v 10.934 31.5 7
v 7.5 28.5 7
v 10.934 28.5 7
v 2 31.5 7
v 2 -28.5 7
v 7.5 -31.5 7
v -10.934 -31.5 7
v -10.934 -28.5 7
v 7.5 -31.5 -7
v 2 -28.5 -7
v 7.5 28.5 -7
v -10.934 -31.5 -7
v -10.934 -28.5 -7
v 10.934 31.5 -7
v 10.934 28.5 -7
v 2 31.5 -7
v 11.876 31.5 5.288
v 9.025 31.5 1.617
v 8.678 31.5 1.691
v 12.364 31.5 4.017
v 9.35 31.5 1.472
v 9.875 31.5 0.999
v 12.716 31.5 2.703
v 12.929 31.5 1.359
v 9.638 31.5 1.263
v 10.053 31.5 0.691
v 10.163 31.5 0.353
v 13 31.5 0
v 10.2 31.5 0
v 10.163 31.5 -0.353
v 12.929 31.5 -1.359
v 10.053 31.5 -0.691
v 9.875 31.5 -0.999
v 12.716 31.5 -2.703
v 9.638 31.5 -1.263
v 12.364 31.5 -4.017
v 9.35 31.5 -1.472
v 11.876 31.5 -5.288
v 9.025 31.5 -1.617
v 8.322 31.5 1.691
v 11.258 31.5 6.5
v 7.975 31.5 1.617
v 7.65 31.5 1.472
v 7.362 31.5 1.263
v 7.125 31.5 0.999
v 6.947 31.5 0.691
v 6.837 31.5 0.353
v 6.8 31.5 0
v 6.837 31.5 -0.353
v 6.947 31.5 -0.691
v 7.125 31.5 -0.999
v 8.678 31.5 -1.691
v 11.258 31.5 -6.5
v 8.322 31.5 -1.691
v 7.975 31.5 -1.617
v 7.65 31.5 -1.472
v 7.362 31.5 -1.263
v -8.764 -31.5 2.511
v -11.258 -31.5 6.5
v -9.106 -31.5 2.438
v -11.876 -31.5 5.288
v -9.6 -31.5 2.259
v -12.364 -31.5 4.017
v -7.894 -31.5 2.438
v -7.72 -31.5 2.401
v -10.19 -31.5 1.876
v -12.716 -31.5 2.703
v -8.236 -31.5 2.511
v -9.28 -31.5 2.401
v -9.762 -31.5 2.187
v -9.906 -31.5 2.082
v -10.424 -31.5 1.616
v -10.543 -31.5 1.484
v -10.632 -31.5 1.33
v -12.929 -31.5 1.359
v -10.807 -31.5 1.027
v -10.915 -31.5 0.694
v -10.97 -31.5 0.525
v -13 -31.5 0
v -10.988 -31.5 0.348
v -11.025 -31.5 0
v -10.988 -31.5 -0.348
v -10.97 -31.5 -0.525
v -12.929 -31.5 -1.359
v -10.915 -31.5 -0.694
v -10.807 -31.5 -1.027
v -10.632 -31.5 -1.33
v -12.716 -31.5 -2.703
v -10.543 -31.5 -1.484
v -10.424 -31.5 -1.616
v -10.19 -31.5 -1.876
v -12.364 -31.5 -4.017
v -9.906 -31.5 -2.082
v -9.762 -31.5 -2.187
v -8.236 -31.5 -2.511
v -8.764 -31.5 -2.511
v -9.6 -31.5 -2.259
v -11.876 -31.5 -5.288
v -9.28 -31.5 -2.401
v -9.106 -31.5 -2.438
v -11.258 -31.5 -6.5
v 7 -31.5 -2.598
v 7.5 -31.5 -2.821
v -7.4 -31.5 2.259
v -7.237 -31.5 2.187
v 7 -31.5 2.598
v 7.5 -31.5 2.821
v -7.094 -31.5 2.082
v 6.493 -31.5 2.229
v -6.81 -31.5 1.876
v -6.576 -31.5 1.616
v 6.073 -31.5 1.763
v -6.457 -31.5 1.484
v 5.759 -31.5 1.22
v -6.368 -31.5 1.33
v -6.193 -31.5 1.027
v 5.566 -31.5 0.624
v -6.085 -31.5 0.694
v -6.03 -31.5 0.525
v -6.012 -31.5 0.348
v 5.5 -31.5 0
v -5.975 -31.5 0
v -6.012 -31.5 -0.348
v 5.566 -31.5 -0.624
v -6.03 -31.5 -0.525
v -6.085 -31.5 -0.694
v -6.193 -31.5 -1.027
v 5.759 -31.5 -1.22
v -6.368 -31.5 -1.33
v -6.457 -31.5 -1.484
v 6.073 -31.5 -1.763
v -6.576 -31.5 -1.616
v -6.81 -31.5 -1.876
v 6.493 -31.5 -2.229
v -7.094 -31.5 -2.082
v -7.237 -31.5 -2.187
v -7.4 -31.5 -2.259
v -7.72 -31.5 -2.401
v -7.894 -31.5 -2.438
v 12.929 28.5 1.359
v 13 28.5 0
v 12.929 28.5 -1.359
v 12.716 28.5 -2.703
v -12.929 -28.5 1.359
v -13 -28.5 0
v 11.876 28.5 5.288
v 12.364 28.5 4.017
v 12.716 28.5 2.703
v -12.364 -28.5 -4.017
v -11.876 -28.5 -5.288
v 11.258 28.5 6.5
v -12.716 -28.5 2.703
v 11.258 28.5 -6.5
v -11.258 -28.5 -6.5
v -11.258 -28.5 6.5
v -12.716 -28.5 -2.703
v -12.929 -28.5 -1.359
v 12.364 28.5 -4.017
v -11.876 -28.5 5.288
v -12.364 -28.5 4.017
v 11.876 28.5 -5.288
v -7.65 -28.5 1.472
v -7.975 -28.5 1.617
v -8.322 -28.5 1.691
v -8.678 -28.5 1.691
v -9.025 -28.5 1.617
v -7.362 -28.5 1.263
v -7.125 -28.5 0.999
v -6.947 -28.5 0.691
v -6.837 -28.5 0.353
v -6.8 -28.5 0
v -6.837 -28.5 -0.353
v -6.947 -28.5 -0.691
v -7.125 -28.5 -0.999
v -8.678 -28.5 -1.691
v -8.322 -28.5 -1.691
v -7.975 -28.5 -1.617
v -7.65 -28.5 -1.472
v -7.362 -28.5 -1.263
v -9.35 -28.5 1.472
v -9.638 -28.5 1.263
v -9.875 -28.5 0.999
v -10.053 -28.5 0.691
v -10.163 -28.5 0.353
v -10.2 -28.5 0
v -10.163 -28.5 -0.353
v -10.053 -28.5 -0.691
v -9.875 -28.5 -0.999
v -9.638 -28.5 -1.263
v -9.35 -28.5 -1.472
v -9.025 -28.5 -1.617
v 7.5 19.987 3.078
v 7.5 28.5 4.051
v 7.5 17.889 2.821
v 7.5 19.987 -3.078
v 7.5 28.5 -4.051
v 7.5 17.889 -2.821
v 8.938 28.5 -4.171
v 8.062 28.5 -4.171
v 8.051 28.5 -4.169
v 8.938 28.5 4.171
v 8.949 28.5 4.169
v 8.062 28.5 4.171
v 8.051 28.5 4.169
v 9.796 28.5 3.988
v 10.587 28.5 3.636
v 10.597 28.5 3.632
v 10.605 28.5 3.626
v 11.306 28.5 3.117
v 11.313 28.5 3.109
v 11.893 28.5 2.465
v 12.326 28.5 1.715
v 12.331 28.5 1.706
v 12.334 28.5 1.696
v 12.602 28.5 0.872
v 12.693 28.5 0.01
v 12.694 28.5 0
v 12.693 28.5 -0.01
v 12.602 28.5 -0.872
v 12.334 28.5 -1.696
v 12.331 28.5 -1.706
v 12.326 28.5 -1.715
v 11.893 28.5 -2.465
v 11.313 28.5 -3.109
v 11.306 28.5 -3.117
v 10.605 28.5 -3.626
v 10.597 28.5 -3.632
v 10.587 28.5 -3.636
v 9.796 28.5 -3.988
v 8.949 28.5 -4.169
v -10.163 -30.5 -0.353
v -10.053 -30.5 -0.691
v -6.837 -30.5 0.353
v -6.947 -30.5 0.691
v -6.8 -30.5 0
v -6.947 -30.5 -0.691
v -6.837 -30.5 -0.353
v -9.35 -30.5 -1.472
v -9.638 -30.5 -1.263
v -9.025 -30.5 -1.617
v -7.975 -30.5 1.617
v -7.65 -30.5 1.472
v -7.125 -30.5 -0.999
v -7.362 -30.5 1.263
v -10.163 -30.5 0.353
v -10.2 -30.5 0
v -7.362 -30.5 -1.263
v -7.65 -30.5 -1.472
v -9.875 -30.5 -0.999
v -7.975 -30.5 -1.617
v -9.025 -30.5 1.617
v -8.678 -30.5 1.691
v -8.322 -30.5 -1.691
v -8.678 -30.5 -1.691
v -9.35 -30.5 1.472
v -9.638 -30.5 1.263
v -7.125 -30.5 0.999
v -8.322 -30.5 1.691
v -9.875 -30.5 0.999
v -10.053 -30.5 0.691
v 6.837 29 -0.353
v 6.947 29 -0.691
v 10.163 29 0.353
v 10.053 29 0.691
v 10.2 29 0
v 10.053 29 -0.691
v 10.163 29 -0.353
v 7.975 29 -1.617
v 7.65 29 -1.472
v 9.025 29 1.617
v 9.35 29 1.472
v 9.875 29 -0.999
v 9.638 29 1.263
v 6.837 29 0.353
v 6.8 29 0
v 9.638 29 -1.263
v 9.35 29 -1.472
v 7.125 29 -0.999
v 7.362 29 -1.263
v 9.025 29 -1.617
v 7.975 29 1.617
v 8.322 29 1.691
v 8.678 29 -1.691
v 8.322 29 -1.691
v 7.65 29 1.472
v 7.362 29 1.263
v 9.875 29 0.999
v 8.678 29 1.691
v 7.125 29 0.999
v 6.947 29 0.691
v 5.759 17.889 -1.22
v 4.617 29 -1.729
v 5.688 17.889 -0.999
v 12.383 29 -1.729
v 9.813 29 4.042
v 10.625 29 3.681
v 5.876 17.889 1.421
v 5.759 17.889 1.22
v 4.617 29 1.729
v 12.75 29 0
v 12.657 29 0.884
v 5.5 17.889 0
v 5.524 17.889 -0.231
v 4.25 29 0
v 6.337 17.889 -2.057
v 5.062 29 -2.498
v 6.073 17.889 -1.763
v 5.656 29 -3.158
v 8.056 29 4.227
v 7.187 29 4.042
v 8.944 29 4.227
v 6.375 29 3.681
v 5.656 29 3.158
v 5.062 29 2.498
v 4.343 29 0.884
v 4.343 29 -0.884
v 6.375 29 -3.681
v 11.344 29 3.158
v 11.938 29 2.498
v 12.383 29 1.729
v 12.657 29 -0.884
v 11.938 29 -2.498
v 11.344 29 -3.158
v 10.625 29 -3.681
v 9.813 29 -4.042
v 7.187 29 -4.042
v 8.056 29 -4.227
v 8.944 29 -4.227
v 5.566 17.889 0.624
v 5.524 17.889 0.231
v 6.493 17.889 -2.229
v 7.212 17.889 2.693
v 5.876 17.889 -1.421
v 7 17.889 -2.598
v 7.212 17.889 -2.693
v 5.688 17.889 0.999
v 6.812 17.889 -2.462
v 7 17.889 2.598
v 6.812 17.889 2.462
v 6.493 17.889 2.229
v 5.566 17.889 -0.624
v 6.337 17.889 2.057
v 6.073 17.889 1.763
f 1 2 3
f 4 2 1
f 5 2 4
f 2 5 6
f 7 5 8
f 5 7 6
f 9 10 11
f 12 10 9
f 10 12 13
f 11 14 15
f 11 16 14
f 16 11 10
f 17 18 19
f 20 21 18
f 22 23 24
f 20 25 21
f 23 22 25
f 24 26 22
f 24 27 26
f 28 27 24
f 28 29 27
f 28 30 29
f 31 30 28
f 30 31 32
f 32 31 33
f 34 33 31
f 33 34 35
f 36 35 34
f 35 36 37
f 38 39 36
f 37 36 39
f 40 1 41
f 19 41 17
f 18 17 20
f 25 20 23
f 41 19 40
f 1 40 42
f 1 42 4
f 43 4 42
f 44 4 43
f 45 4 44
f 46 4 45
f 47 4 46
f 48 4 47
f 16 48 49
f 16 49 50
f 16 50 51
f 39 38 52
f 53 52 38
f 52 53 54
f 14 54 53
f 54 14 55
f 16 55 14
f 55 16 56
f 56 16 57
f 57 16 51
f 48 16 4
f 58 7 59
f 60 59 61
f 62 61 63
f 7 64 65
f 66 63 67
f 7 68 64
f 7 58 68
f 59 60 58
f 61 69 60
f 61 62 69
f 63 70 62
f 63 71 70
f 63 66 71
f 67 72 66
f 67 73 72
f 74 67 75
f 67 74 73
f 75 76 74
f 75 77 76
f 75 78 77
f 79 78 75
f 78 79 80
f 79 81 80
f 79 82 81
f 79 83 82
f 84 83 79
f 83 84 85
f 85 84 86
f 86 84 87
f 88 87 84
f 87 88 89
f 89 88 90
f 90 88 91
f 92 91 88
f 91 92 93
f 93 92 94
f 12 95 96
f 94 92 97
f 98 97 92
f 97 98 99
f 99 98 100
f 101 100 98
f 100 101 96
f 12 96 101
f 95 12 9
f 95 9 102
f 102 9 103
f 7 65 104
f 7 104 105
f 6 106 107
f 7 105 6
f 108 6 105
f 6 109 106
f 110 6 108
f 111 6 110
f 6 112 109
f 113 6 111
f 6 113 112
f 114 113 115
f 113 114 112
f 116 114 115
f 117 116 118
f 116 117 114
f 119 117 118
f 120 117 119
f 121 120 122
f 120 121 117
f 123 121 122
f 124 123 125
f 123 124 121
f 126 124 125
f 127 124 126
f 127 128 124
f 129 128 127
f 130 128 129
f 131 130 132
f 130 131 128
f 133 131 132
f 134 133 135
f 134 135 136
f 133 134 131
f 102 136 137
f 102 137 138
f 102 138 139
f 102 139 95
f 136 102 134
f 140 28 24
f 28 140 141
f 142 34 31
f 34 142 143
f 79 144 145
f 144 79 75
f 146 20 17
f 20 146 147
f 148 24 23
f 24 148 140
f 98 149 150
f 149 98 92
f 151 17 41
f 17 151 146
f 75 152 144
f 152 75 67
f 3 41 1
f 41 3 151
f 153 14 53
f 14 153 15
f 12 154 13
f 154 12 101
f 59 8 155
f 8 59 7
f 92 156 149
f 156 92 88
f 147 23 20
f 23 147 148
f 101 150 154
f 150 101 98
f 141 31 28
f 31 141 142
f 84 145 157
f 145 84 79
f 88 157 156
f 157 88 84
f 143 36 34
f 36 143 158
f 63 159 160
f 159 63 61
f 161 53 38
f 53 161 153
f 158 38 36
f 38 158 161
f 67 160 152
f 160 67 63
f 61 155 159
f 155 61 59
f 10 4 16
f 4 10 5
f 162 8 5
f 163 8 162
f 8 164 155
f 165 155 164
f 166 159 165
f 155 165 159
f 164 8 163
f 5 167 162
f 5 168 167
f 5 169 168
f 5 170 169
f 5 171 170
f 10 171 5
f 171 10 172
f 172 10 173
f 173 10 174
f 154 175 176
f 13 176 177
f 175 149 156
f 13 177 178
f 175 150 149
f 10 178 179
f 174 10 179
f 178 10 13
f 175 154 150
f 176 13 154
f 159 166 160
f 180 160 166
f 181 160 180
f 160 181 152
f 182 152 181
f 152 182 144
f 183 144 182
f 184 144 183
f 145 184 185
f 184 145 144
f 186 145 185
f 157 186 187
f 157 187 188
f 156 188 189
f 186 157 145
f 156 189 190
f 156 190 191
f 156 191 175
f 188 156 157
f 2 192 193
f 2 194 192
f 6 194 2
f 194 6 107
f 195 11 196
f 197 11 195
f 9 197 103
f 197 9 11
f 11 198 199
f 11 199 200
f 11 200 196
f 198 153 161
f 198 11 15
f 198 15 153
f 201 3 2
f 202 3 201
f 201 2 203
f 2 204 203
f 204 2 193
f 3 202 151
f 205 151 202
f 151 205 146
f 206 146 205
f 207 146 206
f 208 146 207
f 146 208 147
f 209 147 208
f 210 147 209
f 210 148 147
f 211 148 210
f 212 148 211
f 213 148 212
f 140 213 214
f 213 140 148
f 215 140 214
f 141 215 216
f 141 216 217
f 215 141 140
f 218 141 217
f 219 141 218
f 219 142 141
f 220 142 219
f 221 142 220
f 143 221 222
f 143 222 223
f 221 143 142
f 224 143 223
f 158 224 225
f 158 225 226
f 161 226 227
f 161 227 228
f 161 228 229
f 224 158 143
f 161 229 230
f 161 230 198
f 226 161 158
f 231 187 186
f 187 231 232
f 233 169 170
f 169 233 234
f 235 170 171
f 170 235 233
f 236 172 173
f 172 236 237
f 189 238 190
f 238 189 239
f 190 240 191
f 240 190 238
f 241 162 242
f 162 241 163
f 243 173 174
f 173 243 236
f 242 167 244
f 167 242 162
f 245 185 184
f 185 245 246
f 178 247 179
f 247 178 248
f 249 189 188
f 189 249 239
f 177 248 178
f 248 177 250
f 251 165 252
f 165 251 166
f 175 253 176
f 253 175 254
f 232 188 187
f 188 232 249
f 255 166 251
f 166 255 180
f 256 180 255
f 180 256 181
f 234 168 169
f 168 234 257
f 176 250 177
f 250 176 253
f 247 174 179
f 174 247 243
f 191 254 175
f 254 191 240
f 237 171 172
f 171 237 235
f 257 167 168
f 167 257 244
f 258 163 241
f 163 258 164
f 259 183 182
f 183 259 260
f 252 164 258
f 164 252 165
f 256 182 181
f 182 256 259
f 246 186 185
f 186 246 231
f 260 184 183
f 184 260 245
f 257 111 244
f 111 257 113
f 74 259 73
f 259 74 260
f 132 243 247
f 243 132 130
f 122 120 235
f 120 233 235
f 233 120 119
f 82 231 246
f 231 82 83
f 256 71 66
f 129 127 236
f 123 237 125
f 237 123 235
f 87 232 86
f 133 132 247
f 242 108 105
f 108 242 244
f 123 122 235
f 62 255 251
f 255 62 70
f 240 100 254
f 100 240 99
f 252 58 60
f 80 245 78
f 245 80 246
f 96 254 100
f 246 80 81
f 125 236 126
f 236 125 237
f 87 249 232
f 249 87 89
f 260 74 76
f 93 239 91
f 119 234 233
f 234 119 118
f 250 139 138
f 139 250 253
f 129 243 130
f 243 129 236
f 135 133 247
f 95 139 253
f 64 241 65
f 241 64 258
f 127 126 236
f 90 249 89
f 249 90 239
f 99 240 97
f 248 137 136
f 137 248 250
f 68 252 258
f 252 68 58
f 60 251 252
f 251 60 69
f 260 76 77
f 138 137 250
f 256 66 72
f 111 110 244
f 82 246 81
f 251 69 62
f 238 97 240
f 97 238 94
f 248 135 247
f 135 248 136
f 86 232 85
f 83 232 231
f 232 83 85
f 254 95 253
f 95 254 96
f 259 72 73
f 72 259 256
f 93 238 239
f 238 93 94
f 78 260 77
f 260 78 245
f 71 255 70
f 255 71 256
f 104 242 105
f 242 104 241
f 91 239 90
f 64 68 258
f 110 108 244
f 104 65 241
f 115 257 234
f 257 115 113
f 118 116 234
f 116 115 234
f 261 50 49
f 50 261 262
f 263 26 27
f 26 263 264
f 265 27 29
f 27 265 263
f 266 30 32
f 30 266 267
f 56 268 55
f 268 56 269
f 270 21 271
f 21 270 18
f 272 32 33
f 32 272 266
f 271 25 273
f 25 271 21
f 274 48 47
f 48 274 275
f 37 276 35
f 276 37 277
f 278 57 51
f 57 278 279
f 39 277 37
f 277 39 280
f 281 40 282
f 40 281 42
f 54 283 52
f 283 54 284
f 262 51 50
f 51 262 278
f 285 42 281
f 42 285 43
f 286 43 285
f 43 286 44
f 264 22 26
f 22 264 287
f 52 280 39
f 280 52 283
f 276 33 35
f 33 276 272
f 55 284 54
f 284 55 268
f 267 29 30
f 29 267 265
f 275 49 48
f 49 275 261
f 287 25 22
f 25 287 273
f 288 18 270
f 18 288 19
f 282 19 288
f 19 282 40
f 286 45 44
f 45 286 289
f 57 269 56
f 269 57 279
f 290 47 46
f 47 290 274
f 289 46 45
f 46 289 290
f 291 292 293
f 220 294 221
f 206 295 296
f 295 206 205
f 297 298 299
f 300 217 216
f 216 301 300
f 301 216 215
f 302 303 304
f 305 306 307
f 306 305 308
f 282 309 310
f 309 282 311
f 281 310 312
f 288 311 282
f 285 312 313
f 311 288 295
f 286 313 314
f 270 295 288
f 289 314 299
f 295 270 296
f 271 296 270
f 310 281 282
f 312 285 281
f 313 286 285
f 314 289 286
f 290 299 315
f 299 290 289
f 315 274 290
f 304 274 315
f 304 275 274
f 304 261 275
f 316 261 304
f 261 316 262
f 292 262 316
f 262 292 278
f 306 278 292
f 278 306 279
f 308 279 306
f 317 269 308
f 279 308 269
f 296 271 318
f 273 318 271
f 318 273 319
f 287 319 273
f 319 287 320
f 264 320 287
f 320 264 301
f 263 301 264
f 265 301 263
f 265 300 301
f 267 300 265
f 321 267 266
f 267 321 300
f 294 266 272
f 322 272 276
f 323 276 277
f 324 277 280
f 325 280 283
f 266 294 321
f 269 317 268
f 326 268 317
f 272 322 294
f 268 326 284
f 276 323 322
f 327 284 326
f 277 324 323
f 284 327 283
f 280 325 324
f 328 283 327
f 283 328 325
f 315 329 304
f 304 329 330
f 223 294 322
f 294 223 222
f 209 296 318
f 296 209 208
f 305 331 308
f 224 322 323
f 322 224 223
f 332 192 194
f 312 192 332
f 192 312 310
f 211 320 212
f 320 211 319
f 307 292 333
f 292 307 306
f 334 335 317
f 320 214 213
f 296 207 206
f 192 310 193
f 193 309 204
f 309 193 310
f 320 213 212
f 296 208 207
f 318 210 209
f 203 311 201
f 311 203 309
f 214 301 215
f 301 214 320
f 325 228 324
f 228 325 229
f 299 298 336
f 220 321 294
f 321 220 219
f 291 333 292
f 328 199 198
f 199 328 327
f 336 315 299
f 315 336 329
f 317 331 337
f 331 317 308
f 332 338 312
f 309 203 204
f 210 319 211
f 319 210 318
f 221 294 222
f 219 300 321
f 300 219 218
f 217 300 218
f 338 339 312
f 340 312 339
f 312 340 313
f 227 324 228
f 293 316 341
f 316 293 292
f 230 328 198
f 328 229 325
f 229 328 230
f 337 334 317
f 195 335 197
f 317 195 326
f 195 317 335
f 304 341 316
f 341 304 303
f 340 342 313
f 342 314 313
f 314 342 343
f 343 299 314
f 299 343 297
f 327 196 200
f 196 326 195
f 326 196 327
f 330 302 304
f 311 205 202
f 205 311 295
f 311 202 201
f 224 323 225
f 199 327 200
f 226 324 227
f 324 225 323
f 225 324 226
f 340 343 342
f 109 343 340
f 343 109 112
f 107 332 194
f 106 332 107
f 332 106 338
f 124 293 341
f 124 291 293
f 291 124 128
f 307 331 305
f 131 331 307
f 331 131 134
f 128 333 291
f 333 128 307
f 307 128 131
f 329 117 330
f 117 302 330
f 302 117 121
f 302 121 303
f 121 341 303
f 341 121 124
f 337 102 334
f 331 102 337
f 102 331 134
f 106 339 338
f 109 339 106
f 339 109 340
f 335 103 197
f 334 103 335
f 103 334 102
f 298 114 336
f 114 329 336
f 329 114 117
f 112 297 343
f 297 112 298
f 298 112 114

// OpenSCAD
// file: ../Dollo/NEW_long_ties/globals.scad
/*
Most things in this file is represented as one millimeter, so keep that in mind while changing things.
Some of the setting are not mm but at variables that you can set, such as 2*x=2x and you are setting what x is.
I will try to specify when things are variables and not exact measurements.
*/

// printer slop
slop = 0.15;

obj_leg = 30;
leg_length = 5.5;
small_number = 0.001;
metal_core_rode_global = 5;


///////////////// number of holes /////////////////////
z_hole_number = 8;
other_holes = 8;

///////////////// Pins /////////////////////

//pins that poke out
ball_size = 10;
pin_height = 20;
pin_diameter = 6;


//holes
hole_ball_size = ball_size;
hole_pin_height = pin_height;
hole_pin_diameter = pin_diameter;

///////////////// Z THINGS /////////////////////

berring_slot_width = 7.5;
berring_slot_depth = 6.5;
metal_core_rode = 5;

///////////////// X THINGS /////////////////////

//male dove tails
male_dove_max_width=8;
male_dove_min_width=5;
male_dove_depth=5;
male_dove_height=obj_leg/2;

function scaled_male_dove_max_width() = male_dove_max_width - slop;
function scaled_male_dove_min_width() = male_dove_min_width - slop;
function scaled_male_dove_depth() = male_dove_depth - slop;

//female dove tails, this is found on the y mounts
girl_max_width=11;
girl_min_width=5;
girl_depth=5;
girl_height=obj_leg;


///////////////// Y THINGS /////////////////////
/*
The Y is so normal that all of those global variables at the top should change all of the setting in it, this section is set her incase there are variables set in the future development of this project.
*/

// stepper
motor_side_length = 43.2;
motor_bolt_hole_distance = 31;
motor_center_hole = 23;
motor_shaft_dia = 5;
motor_shaft_hole_dia = 5+2*slop;

// bolts etc.
bolt_hole_dia = 3+2*slop;
bolt_head_hole_dia = 5.8;

m4_bolt_hole_dia = 4+2*slop;
m4_bolt_head_hole_dia = 6.8+2*slop;


m3_nut_side = 5.65;
m3_nut_height = 2.3;
m4_nut_side = 6.85;
m4_nut_height = 3.1;

// threaded rod
lifter_rod_diam = 9.86;
hole_threaded_rod = lifter_rod_diam+2*slop;

// for the extensions
metal_rod_size = 9;
// file: ../Watercooling/common.scad
use <../Dollo/NEW_long_ties/include.scad>;
use <../PCParts/common.scad>;

tube1_outer_dia = 12.15; // copper
tube1_inner_dia = 10;

tube2_outer_dia = 10;
tube2_inner_dia = 8.5;

fitting_thread_dia = 13;

passthrough_thread_dia = 16;

wire_pass_thread_dia = 12;

// threads
g3_8_d = 16.6;
g1_4_d = 13.3;
g1_2_d = 20.955;

//mock_pump_Eheim_1000();
//mock_pump_Eheim_1000_new();
//mock_pump_Eheim_1250_790();
//mock_radiator_360();
//mock_radiator_420();

module mock_pump_Eheim_1000() {
    pump_width = 45.5;
    pump_height = 63.5;
    pump_depth = 63;

    module _pump_foot() {
        hull() {
            cylinder(d=20, h=0.1);

            translate([0, 0, 5.9])
            cylinder(d=11, h=0.1);
        }
    }

    difference() {
        translate([0, 0, 6])
        cube([
            pump_width, pump_depth,
            pump_height
        ]);

        translate([-1, 63, 45 + 6])
        rotate([30, 0, 0])
        cube([
            50, pump_depth - 23,
            pump_height - 23.5
        ]);
    }

    translate([
        pump_width/2, 41.6 + 13.1/2,
        pump_height - (20 - 14.3) + 6
    ])
    cylinder(d=13.1, h=20, $fn=30);

    translate([6.7, 15.4, 0])
    _pump_foot();

    translate([
        pump_width - 6.7, 15.4, 0
    ])
    _pump_foot();

    translate([6.7, 48.3, 0])
    _pump_foot();

    translate([
        pump_width - 6.7, 48.3, 0
    ])
    _pump_foot();
}

module mock_pump_Eheim_1000_new() {

    pump_width = 45.7;
    pump_height = 68.5;
    pump_depth = 75;

    module _pump_foot() {
        cylinder(d1=28, d2=11, h=7, $fn=40);

    }

    difference() {
        translate([0, 0, pump_height/2 + 12])
        cube([
            pump_width, pump_depth,
            pump_height
        ], center=true);

        translate([
            0, -pump_depth/2 + 63 - 12.5/2,
            pump_height + 12
        ])
        cylinder(d=22, h=12, center=true, $fn=30);
    }

    // outlet
    translate([
        0, -pump_depth/2 + 63 - 12.5/2,
        pump_height + 12
    ])
    cylinder(d=12.5, h=20, center=true, $fn=30);

    // front control
    translate([0, pump_depth/2, 32/2 + 7.5 + 12])
    rotate([90, 0, 0])
    cylinder(d=32, h=12, center=true, $fn=20);
    
    // feet
    translate([
        52/2, -pump_depth/2 + 13, 0
    ])
    _pump_foot();

    translate([
        -52/2, -pump_depth/2 + 13, 0
    ])
    _pump_foot();

    translate([52/2, -pump_depth/2 + 50, 0])
    _pump_foot();

    translate([
        -52/2, -pump_depth/2 + 50, 0
    ])
    _pump_foot();
}

module mock_pump_Eheim_1250_790() {
    difference() {
        intersection() {
            translate([
                0, 0, (112 + 5 + 11)/2 - 5
            ])
            chamfered_cube(
                81, 75, 112 + 5 + 11,
                11, center=true
            );

            translate([0, 0, 112/2])
            cube(
                [81, 75, 112], center=true
            );
        }
        translate([0, 0, 112 - 5 + 20/2])
        chamfered_cube_side(
            81 - 3, 75 - 3, 20, 13
        );
    }

    difference() {
        cylinder(
            d=24, h=112 + 18.5, $fn=40
        );
        cylinder(
            d=24 - 2, h=112 + 19, $fn=40
        );
    }

    // hose
    translate([-81/2, 0, 112 - 25])
    rotate([0, 90, 0])
    cylinder(d=20, h=81 + 33, $fn=40);
}

module g3_8_thread(h, slop=0) {
    v_screw(
        h=h,
        screw_d=g3_8_d + slop,
        pitch=1.337,
        direction=0,
        steps=80,
        depth=0.3,
        chamfer=true
    );

}

module g1_4_thread(h, slop=0) {
    v_screw(
        h=h,
        screw_d=g1_4_d + slop,
        pitch=1.337,
        direction=0,
        steps=70,
        depth=0.2,
        chamfer=true
    );
}

module g1_2_thread(h, slop=0) {
    v_screw(
        h=h,
        screw_d=g1_2_d + slop,
        pitch=1.814,
        direction=0,
        steps=70,
        depth=0,
        chamfer=true
    );
}

module m12_thread_wire_passthrough(h, slop=0) {
    // wire passthrough thread
    v_screw(
        h=h,
        screw_d=12 + slop,
        pitch=1.4,
        direction=0,
        steps=70,
        depth=0.1,
        chamfer=true
    );
}

module mock_radiator_360(fans=true) {
    module _fan() {
        if (fans) {
            %translate([0, 0,  39/2 + 25/2])
            mock_fan_120mm();
        }
    }

    difference() {
        rounded_cube_side(
            131, 400, 39, 5, center=true, $fn=30
        );

        translate([61.5/2, 400/2 - 15, 15])
        cylinder(d=12, h=10, $fn=30);

        translate([-61.5/2, 400/2 - 15, 15])
        cylinder(d=12, h=10, $fn=30);

        translate([61.5/2, 400/2 - 15, -21])
        cylinder(d=12, h=10, $fn=30);

        translate([-61.5/2, 400/2 - 15, -21])
        cylinder(d=12, h=10, $fn=30);

        translate([0, -400/2 + 75, 0]) {
            _fan();
            fan_mount_holes(120);
        }

        translate([0, -400/2 + 196, 0]) {
            _fan();
            fan_mount_holes(120);
        }

        translate([0, -400/2 + 317, 0]) {
            _fan();
            fan_mount_holes(120);
        }
    }
}

module mock_radiator_420() {
    difference() {
        rounded_cube_side(
            145, 460, 39, 5, center=true, $fn=30
        );

        translate([61.5/2, 460/2 - 15, 15])
        cylinder(d=12, h=10, $fn=30);

        translate([-61.5/2, 460/2 - 15, 15])
        cylinder(d=12, h=10, $fn=30);

        translate([61.5/2, 460/2 - 15, -21])
        cylinder(d=12, h=10, $fn=30);

        translate([-61.5/2, 460/2 - 15, -21])
        cylinder(d=12, h=10, $fn=30);

        translate([0, -460/2 + 85, 0]) {
            %translate([0, 0,  39/2 + 25/2])
            mock_fan_140mm();

            fan_mount_holes(140);
        }

        translate([0, -460/2 + 226, 0]) {
            %translate([0, 0,  39/2 + 25/2])
            mock_fan_140mm();

            fan_mount_holes(140);
        }

        translate([0, -460/2 + 367, 0]) {
            %translate([0, 0,  39/2 + 25/2])
            mock_fan_140mm();

            fan_mount_holes(140);
        }
    }
}
// main file
use <../Dollo/NEW_long_ties/include.scad>;

include <../Watercooling/common.scad>;


//debug();

lepy7_radiator_mount();


module debug() {
    mock_radiator_420();

    translate([70.5, -207, 9.5])
    rotate([90, 0, 0])
    lepy7_radiator_mount();
}

module lepy7_radiator_mount() {
    difference() {
        intersection() {
            cube([28, 57 + 6, 14], center=true);

            rotate([90, 0, 0])
            cylinder(d=26, h=100, center=true, $fn=60);
        }

        translate([-25 + 14.5, 3, 0])
        cube([25, 57 + 6, 16], center=true);
        
        translate([25 - 5, -3, 0])
        cube([25, 57 + 6, 16], center=true);

        translate([-25/2 + 4, 0, 0])
        rotate([90, 0, 0])
        cylinder(d=3.4, h=100, center=true, $fn=30);

        translate([-25/2 + 4, -57/2 - 3, 0])
        rotate([90, 0, 0])
        cylinder(d1=3.4, d2=6.7, h=2, center=true, $fn=30);

        translate([25/2 - 4, 0, 0])
        rotate([90, 0, 0])
        cylinder(d=3.4, h=100, center=true, $fn=30);

        translate([25/2 - 4, 58/2 - 20/2, 0])
        rotate([90, 0, 0])
        cylinder(d2=4, d1=8.5, h=20, center=true, $fn=30);

        translate([25/2 - 4, -4, 0])
        rotate([90, 0, 0])
        cylinder(d=6, h=58, center=true, $fn=30);
    }
}
